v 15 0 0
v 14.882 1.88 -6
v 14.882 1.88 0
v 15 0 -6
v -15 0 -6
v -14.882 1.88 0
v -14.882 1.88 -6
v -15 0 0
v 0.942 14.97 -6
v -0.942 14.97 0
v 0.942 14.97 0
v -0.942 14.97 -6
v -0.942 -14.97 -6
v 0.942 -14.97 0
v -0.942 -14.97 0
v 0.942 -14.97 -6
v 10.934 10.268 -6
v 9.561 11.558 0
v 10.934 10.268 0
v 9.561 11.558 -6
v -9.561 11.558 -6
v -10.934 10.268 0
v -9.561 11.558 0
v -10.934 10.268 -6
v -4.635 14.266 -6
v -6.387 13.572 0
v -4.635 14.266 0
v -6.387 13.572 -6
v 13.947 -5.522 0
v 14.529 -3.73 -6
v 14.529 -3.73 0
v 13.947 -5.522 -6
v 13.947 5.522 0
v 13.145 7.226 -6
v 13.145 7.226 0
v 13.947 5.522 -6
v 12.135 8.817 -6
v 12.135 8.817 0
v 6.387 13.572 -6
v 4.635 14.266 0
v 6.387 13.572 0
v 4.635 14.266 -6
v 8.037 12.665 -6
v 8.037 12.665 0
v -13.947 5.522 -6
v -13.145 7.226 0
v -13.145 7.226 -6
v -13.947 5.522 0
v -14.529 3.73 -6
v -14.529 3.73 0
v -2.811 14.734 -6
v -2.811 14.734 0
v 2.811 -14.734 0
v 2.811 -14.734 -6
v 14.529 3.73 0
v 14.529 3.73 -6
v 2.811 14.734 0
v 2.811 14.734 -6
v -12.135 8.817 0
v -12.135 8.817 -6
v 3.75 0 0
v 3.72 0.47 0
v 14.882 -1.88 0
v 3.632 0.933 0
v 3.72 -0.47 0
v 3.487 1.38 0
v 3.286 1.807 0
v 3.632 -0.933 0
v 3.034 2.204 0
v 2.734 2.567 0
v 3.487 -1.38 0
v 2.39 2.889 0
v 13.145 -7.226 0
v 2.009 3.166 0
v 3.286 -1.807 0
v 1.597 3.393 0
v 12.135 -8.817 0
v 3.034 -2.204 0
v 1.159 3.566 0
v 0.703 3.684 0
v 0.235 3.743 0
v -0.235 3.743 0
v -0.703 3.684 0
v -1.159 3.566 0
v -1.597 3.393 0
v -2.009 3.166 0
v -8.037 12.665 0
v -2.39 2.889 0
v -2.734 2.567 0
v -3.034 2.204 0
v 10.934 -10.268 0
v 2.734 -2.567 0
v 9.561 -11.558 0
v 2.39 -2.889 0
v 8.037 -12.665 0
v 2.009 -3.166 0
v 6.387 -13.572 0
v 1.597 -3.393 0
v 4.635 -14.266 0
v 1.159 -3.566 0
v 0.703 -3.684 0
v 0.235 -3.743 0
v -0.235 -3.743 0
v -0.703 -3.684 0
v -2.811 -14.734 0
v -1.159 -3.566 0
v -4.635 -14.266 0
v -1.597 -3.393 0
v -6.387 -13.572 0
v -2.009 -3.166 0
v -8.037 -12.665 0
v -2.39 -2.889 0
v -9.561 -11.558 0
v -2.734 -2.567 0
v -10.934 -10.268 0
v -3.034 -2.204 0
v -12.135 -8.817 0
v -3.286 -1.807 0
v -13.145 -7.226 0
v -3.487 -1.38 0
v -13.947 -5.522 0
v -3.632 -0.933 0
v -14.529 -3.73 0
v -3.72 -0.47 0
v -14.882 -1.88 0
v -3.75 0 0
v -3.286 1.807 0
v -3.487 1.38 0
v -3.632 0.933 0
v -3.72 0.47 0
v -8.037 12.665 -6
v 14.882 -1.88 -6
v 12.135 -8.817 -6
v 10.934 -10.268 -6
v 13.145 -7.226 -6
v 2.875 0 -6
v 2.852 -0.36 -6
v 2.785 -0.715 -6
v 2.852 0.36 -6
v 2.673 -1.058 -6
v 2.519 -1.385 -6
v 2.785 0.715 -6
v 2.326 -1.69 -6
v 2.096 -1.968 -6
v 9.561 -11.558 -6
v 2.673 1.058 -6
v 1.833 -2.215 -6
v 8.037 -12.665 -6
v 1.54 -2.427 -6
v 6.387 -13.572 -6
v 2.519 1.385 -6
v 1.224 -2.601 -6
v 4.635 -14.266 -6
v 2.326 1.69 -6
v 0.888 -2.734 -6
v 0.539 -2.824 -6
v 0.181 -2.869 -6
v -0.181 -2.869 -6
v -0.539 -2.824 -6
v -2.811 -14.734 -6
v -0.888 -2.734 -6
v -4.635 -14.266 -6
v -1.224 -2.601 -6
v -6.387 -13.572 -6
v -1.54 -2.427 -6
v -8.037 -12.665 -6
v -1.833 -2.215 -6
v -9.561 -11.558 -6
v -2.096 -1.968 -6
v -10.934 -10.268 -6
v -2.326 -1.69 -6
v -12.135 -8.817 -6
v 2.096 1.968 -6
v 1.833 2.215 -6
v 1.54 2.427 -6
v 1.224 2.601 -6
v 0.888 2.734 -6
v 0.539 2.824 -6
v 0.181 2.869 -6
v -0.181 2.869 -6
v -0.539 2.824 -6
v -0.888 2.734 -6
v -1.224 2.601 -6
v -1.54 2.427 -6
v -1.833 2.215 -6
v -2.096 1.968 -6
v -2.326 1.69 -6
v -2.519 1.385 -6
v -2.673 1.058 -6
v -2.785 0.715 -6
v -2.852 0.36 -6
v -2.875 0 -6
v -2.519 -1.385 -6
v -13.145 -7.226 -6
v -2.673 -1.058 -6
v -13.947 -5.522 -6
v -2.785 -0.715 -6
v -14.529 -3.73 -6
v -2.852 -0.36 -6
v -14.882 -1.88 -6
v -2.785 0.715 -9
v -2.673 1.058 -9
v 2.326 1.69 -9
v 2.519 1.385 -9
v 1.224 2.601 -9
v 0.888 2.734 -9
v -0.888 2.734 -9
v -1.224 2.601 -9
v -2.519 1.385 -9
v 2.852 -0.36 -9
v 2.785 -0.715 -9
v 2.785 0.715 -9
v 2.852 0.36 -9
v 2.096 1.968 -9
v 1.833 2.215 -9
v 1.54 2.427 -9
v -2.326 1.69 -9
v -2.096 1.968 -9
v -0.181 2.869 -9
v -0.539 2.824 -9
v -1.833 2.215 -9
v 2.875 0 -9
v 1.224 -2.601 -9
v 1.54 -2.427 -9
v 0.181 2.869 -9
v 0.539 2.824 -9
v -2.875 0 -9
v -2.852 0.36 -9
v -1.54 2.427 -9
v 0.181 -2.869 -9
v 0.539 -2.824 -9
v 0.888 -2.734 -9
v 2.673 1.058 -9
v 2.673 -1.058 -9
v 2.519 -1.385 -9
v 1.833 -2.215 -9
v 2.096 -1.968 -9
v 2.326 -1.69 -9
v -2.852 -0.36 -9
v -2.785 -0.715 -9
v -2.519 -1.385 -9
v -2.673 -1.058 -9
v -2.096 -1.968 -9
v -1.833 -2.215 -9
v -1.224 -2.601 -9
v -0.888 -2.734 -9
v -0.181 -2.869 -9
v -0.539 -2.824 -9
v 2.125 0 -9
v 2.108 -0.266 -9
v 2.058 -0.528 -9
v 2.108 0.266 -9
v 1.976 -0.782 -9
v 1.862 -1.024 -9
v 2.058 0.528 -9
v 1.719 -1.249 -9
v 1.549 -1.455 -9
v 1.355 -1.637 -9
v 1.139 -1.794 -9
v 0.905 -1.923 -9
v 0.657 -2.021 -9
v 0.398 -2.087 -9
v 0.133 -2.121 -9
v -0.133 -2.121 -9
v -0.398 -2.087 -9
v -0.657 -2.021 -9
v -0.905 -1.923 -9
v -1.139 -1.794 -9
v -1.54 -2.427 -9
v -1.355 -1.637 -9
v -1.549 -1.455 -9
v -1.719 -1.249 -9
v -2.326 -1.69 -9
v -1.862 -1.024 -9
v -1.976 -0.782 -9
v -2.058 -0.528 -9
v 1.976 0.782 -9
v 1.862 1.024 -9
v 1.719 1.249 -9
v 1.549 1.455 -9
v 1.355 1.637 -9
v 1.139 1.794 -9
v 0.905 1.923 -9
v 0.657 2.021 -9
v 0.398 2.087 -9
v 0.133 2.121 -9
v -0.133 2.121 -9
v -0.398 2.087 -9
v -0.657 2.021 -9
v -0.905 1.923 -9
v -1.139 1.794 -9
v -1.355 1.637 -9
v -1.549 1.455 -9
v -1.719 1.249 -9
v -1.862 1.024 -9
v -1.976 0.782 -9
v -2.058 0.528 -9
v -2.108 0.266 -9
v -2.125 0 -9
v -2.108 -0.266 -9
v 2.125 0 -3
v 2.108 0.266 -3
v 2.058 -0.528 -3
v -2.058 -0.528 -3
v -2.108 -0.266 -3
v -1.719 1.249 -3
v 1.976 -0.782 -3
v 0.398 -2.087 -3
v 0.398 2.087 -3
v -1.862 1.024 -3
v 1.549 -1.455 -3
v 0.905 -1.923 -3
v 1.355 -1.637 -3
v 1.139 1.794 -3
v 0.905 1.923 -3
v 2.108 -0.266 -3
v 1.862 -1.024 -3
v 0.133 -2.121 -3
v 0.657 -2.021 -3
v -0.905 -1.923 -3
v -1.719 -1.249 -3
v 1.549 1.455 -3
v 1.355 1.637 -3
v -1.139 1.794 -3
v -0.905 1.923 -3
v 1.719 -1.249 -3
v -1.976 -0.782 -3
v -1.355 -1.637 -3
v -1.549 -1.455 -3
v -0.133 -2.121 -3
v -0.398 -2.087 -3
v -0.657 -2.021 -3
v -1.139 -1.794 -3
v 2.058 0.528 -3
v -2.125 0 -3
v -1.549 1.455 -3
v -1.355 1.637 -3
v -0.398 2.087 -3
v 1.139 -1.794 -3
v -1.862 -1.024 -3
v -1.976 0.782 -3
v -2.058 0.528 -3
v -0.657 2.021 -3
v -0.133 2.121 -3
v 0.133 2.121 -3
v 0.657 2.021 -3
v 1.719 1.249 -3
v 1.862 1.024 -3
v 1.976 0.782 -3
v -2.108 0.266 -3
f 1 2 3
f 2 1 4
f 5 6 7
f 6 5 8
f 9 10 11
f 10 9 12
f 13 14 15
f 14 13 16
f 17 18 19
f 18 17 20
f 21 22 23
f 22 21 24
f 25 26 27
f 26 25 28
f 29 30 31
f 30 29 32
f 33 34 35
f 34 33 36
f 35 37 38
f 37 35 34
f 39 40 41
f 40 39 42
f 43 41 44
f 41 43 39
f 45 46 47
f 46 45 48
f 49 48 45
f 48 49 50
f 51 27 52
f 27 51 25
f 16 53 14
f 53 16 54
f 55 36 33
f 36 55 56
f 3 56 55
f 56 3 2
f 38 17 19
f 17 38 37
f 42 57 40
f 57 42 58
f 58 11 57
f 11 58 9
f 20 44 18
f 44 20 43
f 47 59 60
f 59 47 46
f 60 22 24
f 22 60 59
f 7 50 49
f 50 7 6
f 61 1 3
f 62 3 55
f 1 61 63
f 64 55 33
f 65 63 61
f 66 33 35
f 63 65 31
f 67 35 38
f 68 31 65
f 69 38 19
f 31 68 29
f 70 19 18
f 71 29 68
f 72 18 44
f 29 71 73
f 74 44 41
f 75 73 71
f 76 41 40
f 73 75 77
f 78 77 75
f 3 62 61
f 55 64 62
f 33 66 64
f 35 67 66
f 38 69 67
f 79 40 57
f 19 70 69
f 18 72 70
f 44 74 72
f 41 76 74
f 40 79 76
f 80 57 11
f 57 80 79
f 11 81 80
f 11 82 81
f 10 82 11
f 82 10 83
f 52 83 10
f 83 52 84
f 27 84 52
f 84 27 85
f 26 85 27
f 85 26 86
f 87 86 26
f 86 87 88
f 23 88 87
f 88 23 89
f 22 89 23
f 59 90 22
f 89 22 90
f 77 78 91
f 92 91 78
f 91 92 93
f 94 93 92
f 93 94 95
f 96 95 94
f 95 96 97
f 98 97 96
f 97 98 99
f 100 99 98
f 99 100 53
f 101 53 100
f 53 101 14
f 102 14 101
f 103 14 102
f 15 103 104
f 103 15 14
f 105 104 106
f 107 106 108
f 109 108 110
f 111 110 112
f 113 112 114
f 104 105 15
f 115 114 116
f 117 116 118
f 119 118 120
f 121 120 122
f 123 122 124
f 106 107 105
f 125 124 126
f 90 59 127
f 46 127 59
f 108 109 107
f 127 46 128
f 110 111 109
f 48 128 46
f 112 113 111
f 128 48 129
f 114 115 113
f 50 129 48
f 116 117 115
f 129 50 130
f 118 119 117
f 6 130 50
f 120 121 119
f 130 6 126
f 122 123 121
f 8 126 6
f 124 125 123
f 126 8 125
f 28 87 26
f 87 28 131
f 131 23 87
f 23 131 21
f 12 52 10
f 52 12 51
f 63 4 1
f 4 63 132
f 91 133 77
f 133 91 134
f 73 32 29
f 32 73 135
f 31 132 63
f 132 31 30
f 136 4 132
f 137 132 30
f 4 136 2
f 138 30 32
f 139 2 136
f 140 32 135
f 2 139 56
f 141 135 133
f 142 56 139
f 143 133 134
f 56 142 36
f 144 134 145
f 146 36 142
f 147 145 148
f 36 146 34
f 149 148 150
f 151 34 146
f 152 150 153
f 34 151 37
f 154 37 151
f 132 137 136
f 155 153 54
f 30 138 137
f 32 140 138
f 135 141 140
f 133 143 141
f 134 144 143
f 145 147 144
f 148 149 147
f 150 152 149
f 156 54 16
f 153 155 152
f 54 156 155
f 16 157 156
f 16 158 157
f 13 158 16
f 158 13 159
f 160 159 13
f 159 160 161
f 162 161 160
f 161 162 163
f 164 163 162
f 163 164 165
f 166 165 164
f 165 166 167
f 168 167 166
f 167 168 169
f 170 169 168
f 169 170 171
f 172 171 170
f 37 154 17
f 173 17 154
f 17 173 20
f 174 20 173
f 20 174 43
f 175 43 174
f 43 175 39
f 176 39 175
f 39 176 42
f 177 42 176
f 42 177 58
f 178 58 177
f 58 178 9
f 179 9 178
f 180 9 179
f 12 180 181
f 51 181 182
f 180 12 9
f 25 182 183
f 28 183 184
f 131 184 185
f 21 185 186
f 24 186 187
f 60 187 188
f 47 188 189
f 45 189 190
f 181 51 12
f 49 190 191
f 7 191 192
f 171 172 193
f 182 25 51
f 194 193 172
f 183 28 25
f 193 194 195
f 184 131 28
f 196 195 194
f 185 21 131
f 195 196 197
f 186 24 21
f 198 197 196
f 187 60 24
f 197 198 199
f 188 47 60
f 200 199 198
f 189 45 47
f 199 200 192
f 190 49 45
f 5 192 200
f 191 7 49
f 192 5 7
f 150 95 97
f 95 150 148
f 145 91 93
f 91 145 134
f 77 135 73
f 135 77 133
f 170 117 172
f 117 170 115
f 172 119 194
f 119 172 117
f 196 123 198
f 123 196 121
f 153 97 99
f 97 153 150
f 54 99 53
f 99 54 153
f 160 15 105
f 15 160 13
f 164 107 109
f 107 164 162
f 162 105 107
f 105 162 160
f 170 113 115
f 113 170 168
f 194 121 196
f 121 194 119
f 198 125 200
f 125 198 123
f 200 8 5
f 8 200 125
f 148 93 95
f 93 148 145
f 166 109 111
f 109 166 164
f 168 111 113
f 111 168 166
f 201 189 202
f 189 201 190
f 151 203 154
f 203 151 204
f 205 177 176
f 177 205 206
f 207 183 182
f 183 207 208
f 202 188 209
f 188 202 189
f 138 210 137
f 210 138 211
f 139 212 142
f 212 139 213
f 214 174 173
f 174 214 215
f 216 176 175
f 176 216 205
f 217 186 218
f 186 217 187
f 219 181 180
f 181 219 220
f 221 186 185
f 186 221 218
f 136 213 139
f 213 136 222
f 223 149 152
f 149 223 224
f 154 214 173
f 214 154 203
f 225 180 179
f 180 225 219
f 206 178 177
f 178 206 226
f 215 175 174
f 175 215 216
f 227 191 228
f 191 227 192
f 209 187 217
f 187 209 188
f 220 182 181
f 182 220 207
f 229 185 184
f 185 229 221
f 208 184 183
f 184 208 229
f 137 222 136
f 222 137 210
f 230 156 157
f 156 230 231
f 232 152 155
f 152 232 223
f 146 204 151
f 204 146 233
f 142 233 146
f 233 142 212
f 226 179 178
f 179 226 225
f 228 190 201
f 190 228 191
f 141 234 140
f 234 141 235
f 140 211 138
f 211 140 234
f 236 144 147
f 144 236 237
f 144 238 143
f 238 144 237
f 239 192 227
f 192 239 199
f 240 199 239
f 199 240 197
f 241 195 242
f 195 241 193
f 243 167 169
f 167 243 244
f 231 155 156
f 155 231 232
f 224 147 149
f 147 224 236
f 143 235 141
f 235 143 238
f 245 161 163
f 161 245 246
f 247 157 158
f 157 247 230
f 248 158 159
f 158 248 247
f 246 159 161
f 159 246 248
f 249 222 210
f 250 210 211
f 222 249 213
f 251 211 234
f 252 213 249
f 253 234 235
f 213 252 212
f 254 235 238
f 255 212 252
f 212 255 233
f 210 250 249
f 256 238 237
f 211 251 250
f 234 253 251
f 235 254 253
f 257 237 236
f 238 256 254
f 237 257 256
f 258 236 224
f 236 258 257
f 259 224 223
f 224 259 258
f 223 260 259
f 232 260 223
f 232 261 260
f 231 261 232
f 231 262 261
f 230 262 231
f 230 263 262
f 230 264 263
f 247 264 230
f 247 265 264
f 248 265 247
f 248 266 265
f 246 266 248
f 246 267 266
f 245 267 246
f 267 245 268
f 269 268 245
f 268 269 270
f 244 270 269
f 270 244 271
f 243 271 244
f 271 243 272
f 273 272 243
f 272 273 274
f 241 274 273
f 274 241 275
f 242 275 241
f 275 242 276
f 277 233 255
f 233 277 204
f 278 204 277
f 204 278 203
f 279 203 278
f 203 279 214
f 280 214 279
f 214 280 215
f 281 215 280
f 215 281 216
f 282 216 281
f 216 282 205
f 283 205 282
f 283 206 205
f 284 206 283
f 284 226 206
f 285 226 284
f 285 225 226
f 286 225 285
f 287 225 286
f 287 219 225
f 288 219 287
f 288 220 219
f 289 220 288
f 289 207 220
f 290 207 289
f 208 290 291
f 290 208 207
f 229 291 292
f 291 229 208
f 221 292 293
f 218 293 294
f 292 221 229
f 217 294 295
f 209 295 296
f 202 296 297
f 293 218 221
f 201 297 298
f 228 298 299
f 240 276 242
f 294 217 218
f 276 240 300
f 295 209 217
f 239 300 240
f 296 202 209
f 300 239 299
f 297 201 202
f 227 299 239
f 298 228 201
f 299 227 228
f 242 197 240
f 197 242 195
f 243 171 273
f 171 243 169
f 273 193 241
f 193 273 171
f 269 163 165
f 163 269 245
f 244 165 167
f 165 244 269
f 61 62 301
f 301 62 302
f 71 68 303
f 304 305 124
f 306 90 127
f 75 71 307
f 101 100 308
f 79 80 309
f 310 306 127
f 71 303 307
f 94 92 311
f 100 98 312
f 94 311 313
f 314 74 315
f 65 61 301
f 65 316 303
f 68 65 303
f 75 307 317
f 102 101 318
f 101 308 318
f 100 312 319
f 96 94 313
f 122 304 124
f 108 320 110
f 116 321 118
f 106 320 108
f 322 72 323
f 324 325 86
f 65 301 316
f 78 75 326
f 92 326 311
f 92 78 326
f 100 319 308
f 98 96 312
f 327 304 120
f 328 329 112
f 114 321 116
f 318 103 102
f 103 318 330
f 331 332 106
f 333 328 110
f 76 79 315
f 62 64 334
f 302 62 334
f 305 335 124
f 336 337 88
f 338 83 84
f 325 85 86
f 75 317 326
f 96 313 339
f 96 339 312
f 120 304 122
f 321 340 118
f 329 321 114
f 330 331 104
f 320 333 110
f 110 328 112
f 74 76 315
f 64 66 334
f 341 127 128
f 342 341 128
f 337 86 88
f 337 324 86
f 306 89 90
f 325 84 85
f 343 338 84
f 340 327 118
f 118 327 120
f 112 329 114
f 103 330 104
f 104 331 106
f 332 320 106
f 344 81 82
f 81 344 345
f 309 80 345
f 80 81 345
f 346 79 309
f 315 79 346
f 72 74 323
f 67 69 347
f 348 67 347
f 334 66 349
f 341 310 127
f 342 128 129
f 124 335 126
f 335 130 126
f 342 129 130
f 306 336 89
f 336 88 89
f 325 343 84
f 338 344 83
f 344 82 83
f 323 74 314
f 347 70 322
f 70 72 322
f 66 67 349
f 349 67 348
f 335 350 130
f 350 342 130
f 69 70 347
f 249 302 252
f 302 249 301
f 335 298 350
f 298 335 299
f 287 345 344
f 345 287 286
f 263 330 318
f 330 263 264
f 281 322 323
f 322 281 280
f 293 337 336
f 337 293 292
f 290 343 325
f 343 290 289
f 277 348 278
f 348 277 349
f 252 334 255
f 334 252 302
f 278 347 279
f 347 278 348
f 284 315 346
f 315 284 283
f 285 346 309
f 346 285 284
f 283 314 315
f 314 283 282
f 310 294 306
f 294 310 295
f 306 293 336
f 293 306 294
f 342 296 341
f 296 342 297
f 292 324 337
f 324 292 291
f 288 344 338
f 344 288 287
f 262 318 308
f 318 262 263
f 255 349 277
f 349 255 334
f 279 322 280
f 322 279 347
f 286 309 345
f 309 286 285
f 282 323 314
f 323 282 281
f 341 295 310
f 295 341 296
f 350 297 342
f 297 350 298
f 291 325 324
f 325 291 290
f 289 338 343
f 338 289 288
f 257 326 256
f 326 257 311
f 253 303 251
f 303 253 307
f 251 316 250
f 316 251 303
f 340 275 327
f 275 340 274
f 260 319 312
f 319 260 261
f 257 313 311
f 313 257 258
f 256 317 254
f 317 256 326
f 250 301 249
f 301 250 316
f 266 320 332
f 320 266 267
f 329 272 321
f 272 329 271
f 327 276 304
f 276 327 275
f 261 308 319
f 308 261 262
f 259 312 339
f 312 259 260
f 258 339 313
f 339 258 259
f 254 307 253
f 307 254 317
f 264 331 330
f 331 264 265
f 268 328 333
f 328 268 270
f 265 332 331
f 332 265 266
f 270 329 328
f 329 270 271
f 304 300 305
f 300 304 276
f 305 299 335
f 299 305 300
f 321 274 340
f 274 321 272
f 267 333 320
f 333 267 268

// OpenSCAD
$fn = 50;

difference() {
	union() {
		translate(v = [0, 0, -6.0]) {
			cylinder(h = 6, r = 15.0);
		}
		#translate(v = [0, 0, -9.0]) {
			cylinder(h = 9, r = 2.875);
		}
	}
	union() {
		translate(v = [0, 0, 0]) {
			rotate(a = [0, 0, 0]) {
				difference() {
					union() {
						translate(v = [0, 0, -9.0]) {
							cylinder(h = 9, r = 2.0);
						}
						translate(v = [0, 0, -3]) {
							cylinder(h = 3, r1 = 2.125, r2 = 3.75);
						}
						translate(v = [0, 0, -9.0]) {
							cylinder(h = 9, r = 2.125);
						}
						translate(v = [0, 0, -9.0]) {
							cylinder(h = 9, r = 2.0);
						}
					}
					union();
				}
			}
		}
	}
}
